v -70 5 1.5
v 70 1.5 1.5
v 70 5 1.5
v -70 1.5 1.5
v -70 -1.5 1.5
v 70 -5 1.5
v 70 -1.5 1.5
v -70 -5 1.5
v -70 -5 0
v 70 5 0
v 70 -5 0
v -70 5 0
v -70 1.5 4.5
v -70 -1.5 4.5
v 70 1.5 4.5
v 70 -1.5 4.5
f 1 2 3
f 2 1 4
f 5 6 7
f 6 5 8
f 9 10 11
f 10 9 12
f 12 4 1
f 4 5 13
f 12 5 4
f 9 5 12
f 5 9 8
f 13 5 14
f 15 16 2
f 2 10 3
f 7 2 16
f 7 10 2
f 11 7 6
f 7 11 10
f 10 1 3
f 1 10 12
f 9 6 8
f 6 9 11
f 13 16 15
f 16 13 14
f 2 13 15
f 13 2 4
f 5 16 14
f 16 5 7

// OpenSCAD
width = 140;

upper = 10;
lower = 3;

upper_thickness = 1.5;
lower_thickness = 3;

union() {
    linear_extrude(upper_thickness)
        square([width, upper], true);
    linear_extrude(upper_thickness+ lower_thickness)
        square([width, lower], true);
}
